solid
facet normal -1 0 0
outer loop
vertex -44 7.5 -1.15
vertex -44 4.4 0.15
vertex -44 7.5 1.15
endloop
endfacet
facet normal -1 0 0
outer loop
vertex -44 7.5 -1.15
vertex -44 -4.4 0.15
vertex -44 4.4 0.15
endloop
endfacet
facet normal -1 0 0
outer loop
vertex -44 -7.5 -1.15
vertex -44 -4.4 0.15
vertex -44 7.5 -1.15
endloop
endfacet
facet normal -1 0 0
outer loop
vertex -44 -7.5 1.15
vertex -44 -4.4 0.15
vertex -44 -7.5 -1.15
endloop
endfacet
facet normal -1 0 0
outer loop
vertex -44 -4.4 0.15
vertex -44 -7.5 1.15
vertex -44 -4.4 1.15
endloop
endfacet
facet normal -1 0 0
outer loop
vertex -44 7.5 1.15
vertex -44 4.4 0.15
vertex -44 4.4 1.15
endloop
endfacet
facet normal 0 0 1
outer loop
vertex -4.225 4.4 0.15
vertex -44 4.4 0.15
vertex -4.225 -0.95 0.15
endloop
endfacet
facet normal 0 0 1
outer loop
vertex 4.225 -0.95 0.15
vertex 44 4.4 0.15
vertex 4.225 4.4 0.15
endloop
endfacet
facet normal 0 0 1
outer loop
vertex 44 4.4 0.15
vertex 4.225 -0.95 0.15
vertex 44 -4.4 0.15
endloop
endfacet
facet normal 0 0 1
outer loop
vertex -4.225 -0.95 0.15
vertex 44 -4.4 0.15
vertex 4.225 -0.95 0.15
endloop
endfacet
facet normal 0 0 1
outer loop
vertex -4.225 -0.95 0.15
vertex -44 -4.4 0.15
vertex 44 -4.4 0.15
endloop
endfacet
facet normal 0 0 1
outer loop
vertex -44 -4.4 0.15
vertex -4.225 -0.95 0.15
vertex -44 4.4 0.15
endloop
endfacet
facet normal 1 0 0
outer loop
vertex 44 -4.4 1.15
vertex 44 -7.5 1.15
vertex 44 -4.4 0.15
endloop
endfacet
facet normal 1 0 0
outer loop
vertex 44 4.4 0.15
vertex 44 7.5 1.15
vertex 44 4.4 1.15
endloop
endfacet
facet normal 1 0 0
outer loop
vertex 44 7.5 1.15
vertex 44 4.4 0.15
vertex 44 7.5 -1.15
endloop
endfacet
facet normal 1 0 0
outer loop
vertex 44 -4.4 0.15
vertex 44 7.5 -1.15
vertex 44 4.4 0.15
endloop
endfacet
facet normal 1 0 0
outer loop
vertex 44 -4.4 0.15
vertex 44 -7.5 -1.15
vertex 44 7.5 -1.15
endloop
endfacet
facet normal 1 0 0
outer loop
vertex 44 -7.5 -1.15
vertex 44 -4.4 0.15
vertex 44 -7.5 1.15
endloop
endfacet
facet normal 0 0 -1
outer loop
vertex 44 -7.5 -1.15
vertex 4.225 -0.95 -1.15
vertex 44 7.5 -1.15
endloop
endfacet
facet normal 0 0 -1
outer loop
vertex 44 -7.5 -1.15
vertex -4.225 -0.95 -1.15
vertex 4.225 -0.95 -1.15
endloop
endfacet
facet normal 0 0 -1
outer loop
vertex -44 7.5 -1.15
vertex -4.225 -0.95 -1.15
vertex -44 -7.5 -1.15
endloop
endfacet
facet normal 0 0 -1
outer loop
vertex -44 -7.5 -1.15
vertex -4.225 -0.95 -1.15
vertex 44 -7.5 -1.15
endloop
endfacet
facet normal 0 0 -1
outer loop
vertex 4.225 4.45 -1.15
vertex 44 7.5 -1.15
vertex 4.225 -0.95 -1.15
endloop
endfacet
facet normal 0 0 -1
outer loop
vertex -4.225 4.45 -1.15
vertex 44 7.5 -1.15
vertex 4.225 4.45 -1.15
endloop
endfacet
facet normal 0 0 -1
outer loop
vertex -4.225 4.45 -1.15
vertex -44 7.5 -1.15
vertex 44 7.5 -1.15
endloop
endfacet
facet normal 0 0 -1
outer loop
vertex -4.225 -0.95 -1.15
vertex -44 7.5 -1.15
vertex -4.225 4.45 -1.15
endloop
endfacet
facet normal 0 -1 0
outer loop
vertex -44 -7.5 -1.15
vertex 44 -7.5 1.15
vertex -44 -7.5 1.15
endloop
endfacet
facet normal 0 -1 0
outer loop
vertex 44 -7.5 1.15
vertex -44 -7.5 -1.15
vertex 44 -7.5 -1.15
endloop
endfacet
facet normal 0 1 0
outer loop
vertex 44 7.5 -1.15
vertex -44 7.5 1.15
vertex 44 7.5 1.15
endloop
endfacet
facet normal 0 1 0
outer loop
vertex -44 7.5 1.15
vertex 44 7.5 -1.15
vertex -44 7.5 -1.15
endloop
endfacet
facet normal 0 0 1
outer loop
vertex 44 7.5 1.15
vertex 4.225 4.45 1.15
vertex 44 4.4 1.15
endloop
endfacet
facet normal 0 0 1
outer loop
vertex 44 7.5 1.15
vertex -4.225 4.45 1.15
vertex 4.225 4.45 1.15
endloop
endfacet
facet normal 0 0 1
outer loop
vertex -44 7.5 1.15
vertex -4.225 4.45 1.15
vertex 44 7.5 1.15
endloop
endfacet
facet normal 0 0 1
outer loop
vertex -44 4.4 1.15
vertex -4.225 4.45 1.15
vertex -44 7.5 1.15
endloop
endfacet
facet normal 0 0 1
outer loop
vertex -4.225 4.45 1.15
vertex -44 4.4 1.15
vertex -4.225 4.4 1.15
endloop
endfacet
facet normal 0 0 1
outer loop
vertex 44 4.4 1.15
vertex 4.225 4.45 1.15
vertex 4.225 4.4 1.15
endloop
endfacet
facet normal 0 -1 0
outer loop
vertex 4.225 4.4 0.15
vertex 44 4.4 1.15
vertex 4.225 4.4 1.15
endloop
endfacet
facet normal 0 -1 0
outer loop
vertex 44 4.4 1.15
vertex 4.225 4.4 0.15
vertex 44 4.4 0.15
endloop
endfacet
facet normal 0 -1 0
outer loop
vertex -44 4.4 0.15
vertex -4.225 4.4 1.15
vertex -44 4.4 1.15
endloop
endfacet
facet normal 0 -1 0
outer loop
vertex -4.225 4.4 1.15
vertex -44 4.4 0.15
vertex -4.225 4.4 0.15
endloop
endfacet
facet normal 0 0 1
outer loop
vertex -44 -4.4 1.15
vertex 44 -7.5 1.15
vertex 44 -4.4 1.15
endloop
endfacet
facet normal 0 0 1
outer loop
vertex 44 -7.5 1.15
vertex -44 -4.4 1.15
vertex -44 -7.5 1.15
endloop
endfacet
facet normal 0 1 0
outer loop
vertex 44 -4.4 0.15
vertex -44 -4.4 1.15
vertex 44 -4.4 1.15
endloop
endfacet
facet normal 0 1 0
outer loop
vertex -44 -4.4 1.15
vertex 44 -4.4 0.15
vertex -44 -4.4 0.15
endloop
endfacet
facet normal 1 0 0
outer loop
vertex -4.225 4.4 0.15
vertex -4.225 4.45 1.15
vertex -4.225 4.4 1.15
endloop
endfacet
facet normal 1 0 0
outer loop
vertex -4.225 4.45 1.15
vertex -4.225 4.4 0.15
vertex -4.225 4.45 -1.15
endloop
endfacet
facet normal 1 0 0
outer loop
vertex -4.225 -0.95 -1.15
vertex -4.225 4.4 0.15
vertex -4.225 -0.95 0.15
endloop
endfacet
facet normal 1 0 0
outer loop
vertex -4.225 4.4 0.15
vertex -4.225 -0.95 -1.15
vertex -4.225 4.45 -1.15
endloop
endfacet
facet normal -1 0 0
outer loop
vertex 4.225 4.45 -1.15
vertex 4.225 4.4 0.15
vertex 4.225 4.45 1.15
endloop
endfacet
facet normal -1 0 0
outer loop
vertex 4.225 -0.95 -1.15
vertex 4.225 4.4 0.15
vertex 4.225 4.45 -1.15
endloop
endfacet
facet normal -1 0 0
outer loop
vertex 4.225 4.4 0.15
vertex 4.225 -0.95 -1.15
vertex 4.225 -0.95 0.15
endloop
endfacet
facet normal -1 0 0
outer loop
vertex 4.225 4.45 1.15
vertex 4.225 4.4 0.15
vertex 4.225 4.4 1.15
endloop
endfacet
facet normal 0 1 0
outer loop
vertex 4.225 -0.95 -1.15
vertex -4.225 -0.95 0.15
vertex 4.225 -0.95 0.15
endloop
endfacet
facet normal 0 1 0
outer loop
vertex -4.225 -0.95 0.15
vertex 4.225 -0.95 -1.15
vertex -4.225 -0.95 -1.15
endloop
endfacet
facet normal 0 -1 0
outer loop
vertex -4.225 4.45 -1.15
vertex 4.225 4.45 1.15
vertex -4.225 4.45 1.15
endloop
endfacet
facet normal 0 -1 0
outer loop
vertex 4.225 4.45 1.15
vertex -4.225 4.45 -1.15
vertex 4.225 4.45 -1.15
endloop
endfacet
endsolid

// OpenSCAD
difference()
{
union()
{
translate([0,0,-(1/2)])
cube([88,15,1.3],center=true);

color("blue")
translate([0,(15/2)-(3.1/2),0])
cube([88,3.1,2.3],center=true);

color("red")
translate([0,-1*(15/2)+(3.1/2),0])
cube([88,3.1,2.3],center=true);
}

translate([0,4.85-3.1,0])
cube([8.45,5.4,5],center=true);
}
